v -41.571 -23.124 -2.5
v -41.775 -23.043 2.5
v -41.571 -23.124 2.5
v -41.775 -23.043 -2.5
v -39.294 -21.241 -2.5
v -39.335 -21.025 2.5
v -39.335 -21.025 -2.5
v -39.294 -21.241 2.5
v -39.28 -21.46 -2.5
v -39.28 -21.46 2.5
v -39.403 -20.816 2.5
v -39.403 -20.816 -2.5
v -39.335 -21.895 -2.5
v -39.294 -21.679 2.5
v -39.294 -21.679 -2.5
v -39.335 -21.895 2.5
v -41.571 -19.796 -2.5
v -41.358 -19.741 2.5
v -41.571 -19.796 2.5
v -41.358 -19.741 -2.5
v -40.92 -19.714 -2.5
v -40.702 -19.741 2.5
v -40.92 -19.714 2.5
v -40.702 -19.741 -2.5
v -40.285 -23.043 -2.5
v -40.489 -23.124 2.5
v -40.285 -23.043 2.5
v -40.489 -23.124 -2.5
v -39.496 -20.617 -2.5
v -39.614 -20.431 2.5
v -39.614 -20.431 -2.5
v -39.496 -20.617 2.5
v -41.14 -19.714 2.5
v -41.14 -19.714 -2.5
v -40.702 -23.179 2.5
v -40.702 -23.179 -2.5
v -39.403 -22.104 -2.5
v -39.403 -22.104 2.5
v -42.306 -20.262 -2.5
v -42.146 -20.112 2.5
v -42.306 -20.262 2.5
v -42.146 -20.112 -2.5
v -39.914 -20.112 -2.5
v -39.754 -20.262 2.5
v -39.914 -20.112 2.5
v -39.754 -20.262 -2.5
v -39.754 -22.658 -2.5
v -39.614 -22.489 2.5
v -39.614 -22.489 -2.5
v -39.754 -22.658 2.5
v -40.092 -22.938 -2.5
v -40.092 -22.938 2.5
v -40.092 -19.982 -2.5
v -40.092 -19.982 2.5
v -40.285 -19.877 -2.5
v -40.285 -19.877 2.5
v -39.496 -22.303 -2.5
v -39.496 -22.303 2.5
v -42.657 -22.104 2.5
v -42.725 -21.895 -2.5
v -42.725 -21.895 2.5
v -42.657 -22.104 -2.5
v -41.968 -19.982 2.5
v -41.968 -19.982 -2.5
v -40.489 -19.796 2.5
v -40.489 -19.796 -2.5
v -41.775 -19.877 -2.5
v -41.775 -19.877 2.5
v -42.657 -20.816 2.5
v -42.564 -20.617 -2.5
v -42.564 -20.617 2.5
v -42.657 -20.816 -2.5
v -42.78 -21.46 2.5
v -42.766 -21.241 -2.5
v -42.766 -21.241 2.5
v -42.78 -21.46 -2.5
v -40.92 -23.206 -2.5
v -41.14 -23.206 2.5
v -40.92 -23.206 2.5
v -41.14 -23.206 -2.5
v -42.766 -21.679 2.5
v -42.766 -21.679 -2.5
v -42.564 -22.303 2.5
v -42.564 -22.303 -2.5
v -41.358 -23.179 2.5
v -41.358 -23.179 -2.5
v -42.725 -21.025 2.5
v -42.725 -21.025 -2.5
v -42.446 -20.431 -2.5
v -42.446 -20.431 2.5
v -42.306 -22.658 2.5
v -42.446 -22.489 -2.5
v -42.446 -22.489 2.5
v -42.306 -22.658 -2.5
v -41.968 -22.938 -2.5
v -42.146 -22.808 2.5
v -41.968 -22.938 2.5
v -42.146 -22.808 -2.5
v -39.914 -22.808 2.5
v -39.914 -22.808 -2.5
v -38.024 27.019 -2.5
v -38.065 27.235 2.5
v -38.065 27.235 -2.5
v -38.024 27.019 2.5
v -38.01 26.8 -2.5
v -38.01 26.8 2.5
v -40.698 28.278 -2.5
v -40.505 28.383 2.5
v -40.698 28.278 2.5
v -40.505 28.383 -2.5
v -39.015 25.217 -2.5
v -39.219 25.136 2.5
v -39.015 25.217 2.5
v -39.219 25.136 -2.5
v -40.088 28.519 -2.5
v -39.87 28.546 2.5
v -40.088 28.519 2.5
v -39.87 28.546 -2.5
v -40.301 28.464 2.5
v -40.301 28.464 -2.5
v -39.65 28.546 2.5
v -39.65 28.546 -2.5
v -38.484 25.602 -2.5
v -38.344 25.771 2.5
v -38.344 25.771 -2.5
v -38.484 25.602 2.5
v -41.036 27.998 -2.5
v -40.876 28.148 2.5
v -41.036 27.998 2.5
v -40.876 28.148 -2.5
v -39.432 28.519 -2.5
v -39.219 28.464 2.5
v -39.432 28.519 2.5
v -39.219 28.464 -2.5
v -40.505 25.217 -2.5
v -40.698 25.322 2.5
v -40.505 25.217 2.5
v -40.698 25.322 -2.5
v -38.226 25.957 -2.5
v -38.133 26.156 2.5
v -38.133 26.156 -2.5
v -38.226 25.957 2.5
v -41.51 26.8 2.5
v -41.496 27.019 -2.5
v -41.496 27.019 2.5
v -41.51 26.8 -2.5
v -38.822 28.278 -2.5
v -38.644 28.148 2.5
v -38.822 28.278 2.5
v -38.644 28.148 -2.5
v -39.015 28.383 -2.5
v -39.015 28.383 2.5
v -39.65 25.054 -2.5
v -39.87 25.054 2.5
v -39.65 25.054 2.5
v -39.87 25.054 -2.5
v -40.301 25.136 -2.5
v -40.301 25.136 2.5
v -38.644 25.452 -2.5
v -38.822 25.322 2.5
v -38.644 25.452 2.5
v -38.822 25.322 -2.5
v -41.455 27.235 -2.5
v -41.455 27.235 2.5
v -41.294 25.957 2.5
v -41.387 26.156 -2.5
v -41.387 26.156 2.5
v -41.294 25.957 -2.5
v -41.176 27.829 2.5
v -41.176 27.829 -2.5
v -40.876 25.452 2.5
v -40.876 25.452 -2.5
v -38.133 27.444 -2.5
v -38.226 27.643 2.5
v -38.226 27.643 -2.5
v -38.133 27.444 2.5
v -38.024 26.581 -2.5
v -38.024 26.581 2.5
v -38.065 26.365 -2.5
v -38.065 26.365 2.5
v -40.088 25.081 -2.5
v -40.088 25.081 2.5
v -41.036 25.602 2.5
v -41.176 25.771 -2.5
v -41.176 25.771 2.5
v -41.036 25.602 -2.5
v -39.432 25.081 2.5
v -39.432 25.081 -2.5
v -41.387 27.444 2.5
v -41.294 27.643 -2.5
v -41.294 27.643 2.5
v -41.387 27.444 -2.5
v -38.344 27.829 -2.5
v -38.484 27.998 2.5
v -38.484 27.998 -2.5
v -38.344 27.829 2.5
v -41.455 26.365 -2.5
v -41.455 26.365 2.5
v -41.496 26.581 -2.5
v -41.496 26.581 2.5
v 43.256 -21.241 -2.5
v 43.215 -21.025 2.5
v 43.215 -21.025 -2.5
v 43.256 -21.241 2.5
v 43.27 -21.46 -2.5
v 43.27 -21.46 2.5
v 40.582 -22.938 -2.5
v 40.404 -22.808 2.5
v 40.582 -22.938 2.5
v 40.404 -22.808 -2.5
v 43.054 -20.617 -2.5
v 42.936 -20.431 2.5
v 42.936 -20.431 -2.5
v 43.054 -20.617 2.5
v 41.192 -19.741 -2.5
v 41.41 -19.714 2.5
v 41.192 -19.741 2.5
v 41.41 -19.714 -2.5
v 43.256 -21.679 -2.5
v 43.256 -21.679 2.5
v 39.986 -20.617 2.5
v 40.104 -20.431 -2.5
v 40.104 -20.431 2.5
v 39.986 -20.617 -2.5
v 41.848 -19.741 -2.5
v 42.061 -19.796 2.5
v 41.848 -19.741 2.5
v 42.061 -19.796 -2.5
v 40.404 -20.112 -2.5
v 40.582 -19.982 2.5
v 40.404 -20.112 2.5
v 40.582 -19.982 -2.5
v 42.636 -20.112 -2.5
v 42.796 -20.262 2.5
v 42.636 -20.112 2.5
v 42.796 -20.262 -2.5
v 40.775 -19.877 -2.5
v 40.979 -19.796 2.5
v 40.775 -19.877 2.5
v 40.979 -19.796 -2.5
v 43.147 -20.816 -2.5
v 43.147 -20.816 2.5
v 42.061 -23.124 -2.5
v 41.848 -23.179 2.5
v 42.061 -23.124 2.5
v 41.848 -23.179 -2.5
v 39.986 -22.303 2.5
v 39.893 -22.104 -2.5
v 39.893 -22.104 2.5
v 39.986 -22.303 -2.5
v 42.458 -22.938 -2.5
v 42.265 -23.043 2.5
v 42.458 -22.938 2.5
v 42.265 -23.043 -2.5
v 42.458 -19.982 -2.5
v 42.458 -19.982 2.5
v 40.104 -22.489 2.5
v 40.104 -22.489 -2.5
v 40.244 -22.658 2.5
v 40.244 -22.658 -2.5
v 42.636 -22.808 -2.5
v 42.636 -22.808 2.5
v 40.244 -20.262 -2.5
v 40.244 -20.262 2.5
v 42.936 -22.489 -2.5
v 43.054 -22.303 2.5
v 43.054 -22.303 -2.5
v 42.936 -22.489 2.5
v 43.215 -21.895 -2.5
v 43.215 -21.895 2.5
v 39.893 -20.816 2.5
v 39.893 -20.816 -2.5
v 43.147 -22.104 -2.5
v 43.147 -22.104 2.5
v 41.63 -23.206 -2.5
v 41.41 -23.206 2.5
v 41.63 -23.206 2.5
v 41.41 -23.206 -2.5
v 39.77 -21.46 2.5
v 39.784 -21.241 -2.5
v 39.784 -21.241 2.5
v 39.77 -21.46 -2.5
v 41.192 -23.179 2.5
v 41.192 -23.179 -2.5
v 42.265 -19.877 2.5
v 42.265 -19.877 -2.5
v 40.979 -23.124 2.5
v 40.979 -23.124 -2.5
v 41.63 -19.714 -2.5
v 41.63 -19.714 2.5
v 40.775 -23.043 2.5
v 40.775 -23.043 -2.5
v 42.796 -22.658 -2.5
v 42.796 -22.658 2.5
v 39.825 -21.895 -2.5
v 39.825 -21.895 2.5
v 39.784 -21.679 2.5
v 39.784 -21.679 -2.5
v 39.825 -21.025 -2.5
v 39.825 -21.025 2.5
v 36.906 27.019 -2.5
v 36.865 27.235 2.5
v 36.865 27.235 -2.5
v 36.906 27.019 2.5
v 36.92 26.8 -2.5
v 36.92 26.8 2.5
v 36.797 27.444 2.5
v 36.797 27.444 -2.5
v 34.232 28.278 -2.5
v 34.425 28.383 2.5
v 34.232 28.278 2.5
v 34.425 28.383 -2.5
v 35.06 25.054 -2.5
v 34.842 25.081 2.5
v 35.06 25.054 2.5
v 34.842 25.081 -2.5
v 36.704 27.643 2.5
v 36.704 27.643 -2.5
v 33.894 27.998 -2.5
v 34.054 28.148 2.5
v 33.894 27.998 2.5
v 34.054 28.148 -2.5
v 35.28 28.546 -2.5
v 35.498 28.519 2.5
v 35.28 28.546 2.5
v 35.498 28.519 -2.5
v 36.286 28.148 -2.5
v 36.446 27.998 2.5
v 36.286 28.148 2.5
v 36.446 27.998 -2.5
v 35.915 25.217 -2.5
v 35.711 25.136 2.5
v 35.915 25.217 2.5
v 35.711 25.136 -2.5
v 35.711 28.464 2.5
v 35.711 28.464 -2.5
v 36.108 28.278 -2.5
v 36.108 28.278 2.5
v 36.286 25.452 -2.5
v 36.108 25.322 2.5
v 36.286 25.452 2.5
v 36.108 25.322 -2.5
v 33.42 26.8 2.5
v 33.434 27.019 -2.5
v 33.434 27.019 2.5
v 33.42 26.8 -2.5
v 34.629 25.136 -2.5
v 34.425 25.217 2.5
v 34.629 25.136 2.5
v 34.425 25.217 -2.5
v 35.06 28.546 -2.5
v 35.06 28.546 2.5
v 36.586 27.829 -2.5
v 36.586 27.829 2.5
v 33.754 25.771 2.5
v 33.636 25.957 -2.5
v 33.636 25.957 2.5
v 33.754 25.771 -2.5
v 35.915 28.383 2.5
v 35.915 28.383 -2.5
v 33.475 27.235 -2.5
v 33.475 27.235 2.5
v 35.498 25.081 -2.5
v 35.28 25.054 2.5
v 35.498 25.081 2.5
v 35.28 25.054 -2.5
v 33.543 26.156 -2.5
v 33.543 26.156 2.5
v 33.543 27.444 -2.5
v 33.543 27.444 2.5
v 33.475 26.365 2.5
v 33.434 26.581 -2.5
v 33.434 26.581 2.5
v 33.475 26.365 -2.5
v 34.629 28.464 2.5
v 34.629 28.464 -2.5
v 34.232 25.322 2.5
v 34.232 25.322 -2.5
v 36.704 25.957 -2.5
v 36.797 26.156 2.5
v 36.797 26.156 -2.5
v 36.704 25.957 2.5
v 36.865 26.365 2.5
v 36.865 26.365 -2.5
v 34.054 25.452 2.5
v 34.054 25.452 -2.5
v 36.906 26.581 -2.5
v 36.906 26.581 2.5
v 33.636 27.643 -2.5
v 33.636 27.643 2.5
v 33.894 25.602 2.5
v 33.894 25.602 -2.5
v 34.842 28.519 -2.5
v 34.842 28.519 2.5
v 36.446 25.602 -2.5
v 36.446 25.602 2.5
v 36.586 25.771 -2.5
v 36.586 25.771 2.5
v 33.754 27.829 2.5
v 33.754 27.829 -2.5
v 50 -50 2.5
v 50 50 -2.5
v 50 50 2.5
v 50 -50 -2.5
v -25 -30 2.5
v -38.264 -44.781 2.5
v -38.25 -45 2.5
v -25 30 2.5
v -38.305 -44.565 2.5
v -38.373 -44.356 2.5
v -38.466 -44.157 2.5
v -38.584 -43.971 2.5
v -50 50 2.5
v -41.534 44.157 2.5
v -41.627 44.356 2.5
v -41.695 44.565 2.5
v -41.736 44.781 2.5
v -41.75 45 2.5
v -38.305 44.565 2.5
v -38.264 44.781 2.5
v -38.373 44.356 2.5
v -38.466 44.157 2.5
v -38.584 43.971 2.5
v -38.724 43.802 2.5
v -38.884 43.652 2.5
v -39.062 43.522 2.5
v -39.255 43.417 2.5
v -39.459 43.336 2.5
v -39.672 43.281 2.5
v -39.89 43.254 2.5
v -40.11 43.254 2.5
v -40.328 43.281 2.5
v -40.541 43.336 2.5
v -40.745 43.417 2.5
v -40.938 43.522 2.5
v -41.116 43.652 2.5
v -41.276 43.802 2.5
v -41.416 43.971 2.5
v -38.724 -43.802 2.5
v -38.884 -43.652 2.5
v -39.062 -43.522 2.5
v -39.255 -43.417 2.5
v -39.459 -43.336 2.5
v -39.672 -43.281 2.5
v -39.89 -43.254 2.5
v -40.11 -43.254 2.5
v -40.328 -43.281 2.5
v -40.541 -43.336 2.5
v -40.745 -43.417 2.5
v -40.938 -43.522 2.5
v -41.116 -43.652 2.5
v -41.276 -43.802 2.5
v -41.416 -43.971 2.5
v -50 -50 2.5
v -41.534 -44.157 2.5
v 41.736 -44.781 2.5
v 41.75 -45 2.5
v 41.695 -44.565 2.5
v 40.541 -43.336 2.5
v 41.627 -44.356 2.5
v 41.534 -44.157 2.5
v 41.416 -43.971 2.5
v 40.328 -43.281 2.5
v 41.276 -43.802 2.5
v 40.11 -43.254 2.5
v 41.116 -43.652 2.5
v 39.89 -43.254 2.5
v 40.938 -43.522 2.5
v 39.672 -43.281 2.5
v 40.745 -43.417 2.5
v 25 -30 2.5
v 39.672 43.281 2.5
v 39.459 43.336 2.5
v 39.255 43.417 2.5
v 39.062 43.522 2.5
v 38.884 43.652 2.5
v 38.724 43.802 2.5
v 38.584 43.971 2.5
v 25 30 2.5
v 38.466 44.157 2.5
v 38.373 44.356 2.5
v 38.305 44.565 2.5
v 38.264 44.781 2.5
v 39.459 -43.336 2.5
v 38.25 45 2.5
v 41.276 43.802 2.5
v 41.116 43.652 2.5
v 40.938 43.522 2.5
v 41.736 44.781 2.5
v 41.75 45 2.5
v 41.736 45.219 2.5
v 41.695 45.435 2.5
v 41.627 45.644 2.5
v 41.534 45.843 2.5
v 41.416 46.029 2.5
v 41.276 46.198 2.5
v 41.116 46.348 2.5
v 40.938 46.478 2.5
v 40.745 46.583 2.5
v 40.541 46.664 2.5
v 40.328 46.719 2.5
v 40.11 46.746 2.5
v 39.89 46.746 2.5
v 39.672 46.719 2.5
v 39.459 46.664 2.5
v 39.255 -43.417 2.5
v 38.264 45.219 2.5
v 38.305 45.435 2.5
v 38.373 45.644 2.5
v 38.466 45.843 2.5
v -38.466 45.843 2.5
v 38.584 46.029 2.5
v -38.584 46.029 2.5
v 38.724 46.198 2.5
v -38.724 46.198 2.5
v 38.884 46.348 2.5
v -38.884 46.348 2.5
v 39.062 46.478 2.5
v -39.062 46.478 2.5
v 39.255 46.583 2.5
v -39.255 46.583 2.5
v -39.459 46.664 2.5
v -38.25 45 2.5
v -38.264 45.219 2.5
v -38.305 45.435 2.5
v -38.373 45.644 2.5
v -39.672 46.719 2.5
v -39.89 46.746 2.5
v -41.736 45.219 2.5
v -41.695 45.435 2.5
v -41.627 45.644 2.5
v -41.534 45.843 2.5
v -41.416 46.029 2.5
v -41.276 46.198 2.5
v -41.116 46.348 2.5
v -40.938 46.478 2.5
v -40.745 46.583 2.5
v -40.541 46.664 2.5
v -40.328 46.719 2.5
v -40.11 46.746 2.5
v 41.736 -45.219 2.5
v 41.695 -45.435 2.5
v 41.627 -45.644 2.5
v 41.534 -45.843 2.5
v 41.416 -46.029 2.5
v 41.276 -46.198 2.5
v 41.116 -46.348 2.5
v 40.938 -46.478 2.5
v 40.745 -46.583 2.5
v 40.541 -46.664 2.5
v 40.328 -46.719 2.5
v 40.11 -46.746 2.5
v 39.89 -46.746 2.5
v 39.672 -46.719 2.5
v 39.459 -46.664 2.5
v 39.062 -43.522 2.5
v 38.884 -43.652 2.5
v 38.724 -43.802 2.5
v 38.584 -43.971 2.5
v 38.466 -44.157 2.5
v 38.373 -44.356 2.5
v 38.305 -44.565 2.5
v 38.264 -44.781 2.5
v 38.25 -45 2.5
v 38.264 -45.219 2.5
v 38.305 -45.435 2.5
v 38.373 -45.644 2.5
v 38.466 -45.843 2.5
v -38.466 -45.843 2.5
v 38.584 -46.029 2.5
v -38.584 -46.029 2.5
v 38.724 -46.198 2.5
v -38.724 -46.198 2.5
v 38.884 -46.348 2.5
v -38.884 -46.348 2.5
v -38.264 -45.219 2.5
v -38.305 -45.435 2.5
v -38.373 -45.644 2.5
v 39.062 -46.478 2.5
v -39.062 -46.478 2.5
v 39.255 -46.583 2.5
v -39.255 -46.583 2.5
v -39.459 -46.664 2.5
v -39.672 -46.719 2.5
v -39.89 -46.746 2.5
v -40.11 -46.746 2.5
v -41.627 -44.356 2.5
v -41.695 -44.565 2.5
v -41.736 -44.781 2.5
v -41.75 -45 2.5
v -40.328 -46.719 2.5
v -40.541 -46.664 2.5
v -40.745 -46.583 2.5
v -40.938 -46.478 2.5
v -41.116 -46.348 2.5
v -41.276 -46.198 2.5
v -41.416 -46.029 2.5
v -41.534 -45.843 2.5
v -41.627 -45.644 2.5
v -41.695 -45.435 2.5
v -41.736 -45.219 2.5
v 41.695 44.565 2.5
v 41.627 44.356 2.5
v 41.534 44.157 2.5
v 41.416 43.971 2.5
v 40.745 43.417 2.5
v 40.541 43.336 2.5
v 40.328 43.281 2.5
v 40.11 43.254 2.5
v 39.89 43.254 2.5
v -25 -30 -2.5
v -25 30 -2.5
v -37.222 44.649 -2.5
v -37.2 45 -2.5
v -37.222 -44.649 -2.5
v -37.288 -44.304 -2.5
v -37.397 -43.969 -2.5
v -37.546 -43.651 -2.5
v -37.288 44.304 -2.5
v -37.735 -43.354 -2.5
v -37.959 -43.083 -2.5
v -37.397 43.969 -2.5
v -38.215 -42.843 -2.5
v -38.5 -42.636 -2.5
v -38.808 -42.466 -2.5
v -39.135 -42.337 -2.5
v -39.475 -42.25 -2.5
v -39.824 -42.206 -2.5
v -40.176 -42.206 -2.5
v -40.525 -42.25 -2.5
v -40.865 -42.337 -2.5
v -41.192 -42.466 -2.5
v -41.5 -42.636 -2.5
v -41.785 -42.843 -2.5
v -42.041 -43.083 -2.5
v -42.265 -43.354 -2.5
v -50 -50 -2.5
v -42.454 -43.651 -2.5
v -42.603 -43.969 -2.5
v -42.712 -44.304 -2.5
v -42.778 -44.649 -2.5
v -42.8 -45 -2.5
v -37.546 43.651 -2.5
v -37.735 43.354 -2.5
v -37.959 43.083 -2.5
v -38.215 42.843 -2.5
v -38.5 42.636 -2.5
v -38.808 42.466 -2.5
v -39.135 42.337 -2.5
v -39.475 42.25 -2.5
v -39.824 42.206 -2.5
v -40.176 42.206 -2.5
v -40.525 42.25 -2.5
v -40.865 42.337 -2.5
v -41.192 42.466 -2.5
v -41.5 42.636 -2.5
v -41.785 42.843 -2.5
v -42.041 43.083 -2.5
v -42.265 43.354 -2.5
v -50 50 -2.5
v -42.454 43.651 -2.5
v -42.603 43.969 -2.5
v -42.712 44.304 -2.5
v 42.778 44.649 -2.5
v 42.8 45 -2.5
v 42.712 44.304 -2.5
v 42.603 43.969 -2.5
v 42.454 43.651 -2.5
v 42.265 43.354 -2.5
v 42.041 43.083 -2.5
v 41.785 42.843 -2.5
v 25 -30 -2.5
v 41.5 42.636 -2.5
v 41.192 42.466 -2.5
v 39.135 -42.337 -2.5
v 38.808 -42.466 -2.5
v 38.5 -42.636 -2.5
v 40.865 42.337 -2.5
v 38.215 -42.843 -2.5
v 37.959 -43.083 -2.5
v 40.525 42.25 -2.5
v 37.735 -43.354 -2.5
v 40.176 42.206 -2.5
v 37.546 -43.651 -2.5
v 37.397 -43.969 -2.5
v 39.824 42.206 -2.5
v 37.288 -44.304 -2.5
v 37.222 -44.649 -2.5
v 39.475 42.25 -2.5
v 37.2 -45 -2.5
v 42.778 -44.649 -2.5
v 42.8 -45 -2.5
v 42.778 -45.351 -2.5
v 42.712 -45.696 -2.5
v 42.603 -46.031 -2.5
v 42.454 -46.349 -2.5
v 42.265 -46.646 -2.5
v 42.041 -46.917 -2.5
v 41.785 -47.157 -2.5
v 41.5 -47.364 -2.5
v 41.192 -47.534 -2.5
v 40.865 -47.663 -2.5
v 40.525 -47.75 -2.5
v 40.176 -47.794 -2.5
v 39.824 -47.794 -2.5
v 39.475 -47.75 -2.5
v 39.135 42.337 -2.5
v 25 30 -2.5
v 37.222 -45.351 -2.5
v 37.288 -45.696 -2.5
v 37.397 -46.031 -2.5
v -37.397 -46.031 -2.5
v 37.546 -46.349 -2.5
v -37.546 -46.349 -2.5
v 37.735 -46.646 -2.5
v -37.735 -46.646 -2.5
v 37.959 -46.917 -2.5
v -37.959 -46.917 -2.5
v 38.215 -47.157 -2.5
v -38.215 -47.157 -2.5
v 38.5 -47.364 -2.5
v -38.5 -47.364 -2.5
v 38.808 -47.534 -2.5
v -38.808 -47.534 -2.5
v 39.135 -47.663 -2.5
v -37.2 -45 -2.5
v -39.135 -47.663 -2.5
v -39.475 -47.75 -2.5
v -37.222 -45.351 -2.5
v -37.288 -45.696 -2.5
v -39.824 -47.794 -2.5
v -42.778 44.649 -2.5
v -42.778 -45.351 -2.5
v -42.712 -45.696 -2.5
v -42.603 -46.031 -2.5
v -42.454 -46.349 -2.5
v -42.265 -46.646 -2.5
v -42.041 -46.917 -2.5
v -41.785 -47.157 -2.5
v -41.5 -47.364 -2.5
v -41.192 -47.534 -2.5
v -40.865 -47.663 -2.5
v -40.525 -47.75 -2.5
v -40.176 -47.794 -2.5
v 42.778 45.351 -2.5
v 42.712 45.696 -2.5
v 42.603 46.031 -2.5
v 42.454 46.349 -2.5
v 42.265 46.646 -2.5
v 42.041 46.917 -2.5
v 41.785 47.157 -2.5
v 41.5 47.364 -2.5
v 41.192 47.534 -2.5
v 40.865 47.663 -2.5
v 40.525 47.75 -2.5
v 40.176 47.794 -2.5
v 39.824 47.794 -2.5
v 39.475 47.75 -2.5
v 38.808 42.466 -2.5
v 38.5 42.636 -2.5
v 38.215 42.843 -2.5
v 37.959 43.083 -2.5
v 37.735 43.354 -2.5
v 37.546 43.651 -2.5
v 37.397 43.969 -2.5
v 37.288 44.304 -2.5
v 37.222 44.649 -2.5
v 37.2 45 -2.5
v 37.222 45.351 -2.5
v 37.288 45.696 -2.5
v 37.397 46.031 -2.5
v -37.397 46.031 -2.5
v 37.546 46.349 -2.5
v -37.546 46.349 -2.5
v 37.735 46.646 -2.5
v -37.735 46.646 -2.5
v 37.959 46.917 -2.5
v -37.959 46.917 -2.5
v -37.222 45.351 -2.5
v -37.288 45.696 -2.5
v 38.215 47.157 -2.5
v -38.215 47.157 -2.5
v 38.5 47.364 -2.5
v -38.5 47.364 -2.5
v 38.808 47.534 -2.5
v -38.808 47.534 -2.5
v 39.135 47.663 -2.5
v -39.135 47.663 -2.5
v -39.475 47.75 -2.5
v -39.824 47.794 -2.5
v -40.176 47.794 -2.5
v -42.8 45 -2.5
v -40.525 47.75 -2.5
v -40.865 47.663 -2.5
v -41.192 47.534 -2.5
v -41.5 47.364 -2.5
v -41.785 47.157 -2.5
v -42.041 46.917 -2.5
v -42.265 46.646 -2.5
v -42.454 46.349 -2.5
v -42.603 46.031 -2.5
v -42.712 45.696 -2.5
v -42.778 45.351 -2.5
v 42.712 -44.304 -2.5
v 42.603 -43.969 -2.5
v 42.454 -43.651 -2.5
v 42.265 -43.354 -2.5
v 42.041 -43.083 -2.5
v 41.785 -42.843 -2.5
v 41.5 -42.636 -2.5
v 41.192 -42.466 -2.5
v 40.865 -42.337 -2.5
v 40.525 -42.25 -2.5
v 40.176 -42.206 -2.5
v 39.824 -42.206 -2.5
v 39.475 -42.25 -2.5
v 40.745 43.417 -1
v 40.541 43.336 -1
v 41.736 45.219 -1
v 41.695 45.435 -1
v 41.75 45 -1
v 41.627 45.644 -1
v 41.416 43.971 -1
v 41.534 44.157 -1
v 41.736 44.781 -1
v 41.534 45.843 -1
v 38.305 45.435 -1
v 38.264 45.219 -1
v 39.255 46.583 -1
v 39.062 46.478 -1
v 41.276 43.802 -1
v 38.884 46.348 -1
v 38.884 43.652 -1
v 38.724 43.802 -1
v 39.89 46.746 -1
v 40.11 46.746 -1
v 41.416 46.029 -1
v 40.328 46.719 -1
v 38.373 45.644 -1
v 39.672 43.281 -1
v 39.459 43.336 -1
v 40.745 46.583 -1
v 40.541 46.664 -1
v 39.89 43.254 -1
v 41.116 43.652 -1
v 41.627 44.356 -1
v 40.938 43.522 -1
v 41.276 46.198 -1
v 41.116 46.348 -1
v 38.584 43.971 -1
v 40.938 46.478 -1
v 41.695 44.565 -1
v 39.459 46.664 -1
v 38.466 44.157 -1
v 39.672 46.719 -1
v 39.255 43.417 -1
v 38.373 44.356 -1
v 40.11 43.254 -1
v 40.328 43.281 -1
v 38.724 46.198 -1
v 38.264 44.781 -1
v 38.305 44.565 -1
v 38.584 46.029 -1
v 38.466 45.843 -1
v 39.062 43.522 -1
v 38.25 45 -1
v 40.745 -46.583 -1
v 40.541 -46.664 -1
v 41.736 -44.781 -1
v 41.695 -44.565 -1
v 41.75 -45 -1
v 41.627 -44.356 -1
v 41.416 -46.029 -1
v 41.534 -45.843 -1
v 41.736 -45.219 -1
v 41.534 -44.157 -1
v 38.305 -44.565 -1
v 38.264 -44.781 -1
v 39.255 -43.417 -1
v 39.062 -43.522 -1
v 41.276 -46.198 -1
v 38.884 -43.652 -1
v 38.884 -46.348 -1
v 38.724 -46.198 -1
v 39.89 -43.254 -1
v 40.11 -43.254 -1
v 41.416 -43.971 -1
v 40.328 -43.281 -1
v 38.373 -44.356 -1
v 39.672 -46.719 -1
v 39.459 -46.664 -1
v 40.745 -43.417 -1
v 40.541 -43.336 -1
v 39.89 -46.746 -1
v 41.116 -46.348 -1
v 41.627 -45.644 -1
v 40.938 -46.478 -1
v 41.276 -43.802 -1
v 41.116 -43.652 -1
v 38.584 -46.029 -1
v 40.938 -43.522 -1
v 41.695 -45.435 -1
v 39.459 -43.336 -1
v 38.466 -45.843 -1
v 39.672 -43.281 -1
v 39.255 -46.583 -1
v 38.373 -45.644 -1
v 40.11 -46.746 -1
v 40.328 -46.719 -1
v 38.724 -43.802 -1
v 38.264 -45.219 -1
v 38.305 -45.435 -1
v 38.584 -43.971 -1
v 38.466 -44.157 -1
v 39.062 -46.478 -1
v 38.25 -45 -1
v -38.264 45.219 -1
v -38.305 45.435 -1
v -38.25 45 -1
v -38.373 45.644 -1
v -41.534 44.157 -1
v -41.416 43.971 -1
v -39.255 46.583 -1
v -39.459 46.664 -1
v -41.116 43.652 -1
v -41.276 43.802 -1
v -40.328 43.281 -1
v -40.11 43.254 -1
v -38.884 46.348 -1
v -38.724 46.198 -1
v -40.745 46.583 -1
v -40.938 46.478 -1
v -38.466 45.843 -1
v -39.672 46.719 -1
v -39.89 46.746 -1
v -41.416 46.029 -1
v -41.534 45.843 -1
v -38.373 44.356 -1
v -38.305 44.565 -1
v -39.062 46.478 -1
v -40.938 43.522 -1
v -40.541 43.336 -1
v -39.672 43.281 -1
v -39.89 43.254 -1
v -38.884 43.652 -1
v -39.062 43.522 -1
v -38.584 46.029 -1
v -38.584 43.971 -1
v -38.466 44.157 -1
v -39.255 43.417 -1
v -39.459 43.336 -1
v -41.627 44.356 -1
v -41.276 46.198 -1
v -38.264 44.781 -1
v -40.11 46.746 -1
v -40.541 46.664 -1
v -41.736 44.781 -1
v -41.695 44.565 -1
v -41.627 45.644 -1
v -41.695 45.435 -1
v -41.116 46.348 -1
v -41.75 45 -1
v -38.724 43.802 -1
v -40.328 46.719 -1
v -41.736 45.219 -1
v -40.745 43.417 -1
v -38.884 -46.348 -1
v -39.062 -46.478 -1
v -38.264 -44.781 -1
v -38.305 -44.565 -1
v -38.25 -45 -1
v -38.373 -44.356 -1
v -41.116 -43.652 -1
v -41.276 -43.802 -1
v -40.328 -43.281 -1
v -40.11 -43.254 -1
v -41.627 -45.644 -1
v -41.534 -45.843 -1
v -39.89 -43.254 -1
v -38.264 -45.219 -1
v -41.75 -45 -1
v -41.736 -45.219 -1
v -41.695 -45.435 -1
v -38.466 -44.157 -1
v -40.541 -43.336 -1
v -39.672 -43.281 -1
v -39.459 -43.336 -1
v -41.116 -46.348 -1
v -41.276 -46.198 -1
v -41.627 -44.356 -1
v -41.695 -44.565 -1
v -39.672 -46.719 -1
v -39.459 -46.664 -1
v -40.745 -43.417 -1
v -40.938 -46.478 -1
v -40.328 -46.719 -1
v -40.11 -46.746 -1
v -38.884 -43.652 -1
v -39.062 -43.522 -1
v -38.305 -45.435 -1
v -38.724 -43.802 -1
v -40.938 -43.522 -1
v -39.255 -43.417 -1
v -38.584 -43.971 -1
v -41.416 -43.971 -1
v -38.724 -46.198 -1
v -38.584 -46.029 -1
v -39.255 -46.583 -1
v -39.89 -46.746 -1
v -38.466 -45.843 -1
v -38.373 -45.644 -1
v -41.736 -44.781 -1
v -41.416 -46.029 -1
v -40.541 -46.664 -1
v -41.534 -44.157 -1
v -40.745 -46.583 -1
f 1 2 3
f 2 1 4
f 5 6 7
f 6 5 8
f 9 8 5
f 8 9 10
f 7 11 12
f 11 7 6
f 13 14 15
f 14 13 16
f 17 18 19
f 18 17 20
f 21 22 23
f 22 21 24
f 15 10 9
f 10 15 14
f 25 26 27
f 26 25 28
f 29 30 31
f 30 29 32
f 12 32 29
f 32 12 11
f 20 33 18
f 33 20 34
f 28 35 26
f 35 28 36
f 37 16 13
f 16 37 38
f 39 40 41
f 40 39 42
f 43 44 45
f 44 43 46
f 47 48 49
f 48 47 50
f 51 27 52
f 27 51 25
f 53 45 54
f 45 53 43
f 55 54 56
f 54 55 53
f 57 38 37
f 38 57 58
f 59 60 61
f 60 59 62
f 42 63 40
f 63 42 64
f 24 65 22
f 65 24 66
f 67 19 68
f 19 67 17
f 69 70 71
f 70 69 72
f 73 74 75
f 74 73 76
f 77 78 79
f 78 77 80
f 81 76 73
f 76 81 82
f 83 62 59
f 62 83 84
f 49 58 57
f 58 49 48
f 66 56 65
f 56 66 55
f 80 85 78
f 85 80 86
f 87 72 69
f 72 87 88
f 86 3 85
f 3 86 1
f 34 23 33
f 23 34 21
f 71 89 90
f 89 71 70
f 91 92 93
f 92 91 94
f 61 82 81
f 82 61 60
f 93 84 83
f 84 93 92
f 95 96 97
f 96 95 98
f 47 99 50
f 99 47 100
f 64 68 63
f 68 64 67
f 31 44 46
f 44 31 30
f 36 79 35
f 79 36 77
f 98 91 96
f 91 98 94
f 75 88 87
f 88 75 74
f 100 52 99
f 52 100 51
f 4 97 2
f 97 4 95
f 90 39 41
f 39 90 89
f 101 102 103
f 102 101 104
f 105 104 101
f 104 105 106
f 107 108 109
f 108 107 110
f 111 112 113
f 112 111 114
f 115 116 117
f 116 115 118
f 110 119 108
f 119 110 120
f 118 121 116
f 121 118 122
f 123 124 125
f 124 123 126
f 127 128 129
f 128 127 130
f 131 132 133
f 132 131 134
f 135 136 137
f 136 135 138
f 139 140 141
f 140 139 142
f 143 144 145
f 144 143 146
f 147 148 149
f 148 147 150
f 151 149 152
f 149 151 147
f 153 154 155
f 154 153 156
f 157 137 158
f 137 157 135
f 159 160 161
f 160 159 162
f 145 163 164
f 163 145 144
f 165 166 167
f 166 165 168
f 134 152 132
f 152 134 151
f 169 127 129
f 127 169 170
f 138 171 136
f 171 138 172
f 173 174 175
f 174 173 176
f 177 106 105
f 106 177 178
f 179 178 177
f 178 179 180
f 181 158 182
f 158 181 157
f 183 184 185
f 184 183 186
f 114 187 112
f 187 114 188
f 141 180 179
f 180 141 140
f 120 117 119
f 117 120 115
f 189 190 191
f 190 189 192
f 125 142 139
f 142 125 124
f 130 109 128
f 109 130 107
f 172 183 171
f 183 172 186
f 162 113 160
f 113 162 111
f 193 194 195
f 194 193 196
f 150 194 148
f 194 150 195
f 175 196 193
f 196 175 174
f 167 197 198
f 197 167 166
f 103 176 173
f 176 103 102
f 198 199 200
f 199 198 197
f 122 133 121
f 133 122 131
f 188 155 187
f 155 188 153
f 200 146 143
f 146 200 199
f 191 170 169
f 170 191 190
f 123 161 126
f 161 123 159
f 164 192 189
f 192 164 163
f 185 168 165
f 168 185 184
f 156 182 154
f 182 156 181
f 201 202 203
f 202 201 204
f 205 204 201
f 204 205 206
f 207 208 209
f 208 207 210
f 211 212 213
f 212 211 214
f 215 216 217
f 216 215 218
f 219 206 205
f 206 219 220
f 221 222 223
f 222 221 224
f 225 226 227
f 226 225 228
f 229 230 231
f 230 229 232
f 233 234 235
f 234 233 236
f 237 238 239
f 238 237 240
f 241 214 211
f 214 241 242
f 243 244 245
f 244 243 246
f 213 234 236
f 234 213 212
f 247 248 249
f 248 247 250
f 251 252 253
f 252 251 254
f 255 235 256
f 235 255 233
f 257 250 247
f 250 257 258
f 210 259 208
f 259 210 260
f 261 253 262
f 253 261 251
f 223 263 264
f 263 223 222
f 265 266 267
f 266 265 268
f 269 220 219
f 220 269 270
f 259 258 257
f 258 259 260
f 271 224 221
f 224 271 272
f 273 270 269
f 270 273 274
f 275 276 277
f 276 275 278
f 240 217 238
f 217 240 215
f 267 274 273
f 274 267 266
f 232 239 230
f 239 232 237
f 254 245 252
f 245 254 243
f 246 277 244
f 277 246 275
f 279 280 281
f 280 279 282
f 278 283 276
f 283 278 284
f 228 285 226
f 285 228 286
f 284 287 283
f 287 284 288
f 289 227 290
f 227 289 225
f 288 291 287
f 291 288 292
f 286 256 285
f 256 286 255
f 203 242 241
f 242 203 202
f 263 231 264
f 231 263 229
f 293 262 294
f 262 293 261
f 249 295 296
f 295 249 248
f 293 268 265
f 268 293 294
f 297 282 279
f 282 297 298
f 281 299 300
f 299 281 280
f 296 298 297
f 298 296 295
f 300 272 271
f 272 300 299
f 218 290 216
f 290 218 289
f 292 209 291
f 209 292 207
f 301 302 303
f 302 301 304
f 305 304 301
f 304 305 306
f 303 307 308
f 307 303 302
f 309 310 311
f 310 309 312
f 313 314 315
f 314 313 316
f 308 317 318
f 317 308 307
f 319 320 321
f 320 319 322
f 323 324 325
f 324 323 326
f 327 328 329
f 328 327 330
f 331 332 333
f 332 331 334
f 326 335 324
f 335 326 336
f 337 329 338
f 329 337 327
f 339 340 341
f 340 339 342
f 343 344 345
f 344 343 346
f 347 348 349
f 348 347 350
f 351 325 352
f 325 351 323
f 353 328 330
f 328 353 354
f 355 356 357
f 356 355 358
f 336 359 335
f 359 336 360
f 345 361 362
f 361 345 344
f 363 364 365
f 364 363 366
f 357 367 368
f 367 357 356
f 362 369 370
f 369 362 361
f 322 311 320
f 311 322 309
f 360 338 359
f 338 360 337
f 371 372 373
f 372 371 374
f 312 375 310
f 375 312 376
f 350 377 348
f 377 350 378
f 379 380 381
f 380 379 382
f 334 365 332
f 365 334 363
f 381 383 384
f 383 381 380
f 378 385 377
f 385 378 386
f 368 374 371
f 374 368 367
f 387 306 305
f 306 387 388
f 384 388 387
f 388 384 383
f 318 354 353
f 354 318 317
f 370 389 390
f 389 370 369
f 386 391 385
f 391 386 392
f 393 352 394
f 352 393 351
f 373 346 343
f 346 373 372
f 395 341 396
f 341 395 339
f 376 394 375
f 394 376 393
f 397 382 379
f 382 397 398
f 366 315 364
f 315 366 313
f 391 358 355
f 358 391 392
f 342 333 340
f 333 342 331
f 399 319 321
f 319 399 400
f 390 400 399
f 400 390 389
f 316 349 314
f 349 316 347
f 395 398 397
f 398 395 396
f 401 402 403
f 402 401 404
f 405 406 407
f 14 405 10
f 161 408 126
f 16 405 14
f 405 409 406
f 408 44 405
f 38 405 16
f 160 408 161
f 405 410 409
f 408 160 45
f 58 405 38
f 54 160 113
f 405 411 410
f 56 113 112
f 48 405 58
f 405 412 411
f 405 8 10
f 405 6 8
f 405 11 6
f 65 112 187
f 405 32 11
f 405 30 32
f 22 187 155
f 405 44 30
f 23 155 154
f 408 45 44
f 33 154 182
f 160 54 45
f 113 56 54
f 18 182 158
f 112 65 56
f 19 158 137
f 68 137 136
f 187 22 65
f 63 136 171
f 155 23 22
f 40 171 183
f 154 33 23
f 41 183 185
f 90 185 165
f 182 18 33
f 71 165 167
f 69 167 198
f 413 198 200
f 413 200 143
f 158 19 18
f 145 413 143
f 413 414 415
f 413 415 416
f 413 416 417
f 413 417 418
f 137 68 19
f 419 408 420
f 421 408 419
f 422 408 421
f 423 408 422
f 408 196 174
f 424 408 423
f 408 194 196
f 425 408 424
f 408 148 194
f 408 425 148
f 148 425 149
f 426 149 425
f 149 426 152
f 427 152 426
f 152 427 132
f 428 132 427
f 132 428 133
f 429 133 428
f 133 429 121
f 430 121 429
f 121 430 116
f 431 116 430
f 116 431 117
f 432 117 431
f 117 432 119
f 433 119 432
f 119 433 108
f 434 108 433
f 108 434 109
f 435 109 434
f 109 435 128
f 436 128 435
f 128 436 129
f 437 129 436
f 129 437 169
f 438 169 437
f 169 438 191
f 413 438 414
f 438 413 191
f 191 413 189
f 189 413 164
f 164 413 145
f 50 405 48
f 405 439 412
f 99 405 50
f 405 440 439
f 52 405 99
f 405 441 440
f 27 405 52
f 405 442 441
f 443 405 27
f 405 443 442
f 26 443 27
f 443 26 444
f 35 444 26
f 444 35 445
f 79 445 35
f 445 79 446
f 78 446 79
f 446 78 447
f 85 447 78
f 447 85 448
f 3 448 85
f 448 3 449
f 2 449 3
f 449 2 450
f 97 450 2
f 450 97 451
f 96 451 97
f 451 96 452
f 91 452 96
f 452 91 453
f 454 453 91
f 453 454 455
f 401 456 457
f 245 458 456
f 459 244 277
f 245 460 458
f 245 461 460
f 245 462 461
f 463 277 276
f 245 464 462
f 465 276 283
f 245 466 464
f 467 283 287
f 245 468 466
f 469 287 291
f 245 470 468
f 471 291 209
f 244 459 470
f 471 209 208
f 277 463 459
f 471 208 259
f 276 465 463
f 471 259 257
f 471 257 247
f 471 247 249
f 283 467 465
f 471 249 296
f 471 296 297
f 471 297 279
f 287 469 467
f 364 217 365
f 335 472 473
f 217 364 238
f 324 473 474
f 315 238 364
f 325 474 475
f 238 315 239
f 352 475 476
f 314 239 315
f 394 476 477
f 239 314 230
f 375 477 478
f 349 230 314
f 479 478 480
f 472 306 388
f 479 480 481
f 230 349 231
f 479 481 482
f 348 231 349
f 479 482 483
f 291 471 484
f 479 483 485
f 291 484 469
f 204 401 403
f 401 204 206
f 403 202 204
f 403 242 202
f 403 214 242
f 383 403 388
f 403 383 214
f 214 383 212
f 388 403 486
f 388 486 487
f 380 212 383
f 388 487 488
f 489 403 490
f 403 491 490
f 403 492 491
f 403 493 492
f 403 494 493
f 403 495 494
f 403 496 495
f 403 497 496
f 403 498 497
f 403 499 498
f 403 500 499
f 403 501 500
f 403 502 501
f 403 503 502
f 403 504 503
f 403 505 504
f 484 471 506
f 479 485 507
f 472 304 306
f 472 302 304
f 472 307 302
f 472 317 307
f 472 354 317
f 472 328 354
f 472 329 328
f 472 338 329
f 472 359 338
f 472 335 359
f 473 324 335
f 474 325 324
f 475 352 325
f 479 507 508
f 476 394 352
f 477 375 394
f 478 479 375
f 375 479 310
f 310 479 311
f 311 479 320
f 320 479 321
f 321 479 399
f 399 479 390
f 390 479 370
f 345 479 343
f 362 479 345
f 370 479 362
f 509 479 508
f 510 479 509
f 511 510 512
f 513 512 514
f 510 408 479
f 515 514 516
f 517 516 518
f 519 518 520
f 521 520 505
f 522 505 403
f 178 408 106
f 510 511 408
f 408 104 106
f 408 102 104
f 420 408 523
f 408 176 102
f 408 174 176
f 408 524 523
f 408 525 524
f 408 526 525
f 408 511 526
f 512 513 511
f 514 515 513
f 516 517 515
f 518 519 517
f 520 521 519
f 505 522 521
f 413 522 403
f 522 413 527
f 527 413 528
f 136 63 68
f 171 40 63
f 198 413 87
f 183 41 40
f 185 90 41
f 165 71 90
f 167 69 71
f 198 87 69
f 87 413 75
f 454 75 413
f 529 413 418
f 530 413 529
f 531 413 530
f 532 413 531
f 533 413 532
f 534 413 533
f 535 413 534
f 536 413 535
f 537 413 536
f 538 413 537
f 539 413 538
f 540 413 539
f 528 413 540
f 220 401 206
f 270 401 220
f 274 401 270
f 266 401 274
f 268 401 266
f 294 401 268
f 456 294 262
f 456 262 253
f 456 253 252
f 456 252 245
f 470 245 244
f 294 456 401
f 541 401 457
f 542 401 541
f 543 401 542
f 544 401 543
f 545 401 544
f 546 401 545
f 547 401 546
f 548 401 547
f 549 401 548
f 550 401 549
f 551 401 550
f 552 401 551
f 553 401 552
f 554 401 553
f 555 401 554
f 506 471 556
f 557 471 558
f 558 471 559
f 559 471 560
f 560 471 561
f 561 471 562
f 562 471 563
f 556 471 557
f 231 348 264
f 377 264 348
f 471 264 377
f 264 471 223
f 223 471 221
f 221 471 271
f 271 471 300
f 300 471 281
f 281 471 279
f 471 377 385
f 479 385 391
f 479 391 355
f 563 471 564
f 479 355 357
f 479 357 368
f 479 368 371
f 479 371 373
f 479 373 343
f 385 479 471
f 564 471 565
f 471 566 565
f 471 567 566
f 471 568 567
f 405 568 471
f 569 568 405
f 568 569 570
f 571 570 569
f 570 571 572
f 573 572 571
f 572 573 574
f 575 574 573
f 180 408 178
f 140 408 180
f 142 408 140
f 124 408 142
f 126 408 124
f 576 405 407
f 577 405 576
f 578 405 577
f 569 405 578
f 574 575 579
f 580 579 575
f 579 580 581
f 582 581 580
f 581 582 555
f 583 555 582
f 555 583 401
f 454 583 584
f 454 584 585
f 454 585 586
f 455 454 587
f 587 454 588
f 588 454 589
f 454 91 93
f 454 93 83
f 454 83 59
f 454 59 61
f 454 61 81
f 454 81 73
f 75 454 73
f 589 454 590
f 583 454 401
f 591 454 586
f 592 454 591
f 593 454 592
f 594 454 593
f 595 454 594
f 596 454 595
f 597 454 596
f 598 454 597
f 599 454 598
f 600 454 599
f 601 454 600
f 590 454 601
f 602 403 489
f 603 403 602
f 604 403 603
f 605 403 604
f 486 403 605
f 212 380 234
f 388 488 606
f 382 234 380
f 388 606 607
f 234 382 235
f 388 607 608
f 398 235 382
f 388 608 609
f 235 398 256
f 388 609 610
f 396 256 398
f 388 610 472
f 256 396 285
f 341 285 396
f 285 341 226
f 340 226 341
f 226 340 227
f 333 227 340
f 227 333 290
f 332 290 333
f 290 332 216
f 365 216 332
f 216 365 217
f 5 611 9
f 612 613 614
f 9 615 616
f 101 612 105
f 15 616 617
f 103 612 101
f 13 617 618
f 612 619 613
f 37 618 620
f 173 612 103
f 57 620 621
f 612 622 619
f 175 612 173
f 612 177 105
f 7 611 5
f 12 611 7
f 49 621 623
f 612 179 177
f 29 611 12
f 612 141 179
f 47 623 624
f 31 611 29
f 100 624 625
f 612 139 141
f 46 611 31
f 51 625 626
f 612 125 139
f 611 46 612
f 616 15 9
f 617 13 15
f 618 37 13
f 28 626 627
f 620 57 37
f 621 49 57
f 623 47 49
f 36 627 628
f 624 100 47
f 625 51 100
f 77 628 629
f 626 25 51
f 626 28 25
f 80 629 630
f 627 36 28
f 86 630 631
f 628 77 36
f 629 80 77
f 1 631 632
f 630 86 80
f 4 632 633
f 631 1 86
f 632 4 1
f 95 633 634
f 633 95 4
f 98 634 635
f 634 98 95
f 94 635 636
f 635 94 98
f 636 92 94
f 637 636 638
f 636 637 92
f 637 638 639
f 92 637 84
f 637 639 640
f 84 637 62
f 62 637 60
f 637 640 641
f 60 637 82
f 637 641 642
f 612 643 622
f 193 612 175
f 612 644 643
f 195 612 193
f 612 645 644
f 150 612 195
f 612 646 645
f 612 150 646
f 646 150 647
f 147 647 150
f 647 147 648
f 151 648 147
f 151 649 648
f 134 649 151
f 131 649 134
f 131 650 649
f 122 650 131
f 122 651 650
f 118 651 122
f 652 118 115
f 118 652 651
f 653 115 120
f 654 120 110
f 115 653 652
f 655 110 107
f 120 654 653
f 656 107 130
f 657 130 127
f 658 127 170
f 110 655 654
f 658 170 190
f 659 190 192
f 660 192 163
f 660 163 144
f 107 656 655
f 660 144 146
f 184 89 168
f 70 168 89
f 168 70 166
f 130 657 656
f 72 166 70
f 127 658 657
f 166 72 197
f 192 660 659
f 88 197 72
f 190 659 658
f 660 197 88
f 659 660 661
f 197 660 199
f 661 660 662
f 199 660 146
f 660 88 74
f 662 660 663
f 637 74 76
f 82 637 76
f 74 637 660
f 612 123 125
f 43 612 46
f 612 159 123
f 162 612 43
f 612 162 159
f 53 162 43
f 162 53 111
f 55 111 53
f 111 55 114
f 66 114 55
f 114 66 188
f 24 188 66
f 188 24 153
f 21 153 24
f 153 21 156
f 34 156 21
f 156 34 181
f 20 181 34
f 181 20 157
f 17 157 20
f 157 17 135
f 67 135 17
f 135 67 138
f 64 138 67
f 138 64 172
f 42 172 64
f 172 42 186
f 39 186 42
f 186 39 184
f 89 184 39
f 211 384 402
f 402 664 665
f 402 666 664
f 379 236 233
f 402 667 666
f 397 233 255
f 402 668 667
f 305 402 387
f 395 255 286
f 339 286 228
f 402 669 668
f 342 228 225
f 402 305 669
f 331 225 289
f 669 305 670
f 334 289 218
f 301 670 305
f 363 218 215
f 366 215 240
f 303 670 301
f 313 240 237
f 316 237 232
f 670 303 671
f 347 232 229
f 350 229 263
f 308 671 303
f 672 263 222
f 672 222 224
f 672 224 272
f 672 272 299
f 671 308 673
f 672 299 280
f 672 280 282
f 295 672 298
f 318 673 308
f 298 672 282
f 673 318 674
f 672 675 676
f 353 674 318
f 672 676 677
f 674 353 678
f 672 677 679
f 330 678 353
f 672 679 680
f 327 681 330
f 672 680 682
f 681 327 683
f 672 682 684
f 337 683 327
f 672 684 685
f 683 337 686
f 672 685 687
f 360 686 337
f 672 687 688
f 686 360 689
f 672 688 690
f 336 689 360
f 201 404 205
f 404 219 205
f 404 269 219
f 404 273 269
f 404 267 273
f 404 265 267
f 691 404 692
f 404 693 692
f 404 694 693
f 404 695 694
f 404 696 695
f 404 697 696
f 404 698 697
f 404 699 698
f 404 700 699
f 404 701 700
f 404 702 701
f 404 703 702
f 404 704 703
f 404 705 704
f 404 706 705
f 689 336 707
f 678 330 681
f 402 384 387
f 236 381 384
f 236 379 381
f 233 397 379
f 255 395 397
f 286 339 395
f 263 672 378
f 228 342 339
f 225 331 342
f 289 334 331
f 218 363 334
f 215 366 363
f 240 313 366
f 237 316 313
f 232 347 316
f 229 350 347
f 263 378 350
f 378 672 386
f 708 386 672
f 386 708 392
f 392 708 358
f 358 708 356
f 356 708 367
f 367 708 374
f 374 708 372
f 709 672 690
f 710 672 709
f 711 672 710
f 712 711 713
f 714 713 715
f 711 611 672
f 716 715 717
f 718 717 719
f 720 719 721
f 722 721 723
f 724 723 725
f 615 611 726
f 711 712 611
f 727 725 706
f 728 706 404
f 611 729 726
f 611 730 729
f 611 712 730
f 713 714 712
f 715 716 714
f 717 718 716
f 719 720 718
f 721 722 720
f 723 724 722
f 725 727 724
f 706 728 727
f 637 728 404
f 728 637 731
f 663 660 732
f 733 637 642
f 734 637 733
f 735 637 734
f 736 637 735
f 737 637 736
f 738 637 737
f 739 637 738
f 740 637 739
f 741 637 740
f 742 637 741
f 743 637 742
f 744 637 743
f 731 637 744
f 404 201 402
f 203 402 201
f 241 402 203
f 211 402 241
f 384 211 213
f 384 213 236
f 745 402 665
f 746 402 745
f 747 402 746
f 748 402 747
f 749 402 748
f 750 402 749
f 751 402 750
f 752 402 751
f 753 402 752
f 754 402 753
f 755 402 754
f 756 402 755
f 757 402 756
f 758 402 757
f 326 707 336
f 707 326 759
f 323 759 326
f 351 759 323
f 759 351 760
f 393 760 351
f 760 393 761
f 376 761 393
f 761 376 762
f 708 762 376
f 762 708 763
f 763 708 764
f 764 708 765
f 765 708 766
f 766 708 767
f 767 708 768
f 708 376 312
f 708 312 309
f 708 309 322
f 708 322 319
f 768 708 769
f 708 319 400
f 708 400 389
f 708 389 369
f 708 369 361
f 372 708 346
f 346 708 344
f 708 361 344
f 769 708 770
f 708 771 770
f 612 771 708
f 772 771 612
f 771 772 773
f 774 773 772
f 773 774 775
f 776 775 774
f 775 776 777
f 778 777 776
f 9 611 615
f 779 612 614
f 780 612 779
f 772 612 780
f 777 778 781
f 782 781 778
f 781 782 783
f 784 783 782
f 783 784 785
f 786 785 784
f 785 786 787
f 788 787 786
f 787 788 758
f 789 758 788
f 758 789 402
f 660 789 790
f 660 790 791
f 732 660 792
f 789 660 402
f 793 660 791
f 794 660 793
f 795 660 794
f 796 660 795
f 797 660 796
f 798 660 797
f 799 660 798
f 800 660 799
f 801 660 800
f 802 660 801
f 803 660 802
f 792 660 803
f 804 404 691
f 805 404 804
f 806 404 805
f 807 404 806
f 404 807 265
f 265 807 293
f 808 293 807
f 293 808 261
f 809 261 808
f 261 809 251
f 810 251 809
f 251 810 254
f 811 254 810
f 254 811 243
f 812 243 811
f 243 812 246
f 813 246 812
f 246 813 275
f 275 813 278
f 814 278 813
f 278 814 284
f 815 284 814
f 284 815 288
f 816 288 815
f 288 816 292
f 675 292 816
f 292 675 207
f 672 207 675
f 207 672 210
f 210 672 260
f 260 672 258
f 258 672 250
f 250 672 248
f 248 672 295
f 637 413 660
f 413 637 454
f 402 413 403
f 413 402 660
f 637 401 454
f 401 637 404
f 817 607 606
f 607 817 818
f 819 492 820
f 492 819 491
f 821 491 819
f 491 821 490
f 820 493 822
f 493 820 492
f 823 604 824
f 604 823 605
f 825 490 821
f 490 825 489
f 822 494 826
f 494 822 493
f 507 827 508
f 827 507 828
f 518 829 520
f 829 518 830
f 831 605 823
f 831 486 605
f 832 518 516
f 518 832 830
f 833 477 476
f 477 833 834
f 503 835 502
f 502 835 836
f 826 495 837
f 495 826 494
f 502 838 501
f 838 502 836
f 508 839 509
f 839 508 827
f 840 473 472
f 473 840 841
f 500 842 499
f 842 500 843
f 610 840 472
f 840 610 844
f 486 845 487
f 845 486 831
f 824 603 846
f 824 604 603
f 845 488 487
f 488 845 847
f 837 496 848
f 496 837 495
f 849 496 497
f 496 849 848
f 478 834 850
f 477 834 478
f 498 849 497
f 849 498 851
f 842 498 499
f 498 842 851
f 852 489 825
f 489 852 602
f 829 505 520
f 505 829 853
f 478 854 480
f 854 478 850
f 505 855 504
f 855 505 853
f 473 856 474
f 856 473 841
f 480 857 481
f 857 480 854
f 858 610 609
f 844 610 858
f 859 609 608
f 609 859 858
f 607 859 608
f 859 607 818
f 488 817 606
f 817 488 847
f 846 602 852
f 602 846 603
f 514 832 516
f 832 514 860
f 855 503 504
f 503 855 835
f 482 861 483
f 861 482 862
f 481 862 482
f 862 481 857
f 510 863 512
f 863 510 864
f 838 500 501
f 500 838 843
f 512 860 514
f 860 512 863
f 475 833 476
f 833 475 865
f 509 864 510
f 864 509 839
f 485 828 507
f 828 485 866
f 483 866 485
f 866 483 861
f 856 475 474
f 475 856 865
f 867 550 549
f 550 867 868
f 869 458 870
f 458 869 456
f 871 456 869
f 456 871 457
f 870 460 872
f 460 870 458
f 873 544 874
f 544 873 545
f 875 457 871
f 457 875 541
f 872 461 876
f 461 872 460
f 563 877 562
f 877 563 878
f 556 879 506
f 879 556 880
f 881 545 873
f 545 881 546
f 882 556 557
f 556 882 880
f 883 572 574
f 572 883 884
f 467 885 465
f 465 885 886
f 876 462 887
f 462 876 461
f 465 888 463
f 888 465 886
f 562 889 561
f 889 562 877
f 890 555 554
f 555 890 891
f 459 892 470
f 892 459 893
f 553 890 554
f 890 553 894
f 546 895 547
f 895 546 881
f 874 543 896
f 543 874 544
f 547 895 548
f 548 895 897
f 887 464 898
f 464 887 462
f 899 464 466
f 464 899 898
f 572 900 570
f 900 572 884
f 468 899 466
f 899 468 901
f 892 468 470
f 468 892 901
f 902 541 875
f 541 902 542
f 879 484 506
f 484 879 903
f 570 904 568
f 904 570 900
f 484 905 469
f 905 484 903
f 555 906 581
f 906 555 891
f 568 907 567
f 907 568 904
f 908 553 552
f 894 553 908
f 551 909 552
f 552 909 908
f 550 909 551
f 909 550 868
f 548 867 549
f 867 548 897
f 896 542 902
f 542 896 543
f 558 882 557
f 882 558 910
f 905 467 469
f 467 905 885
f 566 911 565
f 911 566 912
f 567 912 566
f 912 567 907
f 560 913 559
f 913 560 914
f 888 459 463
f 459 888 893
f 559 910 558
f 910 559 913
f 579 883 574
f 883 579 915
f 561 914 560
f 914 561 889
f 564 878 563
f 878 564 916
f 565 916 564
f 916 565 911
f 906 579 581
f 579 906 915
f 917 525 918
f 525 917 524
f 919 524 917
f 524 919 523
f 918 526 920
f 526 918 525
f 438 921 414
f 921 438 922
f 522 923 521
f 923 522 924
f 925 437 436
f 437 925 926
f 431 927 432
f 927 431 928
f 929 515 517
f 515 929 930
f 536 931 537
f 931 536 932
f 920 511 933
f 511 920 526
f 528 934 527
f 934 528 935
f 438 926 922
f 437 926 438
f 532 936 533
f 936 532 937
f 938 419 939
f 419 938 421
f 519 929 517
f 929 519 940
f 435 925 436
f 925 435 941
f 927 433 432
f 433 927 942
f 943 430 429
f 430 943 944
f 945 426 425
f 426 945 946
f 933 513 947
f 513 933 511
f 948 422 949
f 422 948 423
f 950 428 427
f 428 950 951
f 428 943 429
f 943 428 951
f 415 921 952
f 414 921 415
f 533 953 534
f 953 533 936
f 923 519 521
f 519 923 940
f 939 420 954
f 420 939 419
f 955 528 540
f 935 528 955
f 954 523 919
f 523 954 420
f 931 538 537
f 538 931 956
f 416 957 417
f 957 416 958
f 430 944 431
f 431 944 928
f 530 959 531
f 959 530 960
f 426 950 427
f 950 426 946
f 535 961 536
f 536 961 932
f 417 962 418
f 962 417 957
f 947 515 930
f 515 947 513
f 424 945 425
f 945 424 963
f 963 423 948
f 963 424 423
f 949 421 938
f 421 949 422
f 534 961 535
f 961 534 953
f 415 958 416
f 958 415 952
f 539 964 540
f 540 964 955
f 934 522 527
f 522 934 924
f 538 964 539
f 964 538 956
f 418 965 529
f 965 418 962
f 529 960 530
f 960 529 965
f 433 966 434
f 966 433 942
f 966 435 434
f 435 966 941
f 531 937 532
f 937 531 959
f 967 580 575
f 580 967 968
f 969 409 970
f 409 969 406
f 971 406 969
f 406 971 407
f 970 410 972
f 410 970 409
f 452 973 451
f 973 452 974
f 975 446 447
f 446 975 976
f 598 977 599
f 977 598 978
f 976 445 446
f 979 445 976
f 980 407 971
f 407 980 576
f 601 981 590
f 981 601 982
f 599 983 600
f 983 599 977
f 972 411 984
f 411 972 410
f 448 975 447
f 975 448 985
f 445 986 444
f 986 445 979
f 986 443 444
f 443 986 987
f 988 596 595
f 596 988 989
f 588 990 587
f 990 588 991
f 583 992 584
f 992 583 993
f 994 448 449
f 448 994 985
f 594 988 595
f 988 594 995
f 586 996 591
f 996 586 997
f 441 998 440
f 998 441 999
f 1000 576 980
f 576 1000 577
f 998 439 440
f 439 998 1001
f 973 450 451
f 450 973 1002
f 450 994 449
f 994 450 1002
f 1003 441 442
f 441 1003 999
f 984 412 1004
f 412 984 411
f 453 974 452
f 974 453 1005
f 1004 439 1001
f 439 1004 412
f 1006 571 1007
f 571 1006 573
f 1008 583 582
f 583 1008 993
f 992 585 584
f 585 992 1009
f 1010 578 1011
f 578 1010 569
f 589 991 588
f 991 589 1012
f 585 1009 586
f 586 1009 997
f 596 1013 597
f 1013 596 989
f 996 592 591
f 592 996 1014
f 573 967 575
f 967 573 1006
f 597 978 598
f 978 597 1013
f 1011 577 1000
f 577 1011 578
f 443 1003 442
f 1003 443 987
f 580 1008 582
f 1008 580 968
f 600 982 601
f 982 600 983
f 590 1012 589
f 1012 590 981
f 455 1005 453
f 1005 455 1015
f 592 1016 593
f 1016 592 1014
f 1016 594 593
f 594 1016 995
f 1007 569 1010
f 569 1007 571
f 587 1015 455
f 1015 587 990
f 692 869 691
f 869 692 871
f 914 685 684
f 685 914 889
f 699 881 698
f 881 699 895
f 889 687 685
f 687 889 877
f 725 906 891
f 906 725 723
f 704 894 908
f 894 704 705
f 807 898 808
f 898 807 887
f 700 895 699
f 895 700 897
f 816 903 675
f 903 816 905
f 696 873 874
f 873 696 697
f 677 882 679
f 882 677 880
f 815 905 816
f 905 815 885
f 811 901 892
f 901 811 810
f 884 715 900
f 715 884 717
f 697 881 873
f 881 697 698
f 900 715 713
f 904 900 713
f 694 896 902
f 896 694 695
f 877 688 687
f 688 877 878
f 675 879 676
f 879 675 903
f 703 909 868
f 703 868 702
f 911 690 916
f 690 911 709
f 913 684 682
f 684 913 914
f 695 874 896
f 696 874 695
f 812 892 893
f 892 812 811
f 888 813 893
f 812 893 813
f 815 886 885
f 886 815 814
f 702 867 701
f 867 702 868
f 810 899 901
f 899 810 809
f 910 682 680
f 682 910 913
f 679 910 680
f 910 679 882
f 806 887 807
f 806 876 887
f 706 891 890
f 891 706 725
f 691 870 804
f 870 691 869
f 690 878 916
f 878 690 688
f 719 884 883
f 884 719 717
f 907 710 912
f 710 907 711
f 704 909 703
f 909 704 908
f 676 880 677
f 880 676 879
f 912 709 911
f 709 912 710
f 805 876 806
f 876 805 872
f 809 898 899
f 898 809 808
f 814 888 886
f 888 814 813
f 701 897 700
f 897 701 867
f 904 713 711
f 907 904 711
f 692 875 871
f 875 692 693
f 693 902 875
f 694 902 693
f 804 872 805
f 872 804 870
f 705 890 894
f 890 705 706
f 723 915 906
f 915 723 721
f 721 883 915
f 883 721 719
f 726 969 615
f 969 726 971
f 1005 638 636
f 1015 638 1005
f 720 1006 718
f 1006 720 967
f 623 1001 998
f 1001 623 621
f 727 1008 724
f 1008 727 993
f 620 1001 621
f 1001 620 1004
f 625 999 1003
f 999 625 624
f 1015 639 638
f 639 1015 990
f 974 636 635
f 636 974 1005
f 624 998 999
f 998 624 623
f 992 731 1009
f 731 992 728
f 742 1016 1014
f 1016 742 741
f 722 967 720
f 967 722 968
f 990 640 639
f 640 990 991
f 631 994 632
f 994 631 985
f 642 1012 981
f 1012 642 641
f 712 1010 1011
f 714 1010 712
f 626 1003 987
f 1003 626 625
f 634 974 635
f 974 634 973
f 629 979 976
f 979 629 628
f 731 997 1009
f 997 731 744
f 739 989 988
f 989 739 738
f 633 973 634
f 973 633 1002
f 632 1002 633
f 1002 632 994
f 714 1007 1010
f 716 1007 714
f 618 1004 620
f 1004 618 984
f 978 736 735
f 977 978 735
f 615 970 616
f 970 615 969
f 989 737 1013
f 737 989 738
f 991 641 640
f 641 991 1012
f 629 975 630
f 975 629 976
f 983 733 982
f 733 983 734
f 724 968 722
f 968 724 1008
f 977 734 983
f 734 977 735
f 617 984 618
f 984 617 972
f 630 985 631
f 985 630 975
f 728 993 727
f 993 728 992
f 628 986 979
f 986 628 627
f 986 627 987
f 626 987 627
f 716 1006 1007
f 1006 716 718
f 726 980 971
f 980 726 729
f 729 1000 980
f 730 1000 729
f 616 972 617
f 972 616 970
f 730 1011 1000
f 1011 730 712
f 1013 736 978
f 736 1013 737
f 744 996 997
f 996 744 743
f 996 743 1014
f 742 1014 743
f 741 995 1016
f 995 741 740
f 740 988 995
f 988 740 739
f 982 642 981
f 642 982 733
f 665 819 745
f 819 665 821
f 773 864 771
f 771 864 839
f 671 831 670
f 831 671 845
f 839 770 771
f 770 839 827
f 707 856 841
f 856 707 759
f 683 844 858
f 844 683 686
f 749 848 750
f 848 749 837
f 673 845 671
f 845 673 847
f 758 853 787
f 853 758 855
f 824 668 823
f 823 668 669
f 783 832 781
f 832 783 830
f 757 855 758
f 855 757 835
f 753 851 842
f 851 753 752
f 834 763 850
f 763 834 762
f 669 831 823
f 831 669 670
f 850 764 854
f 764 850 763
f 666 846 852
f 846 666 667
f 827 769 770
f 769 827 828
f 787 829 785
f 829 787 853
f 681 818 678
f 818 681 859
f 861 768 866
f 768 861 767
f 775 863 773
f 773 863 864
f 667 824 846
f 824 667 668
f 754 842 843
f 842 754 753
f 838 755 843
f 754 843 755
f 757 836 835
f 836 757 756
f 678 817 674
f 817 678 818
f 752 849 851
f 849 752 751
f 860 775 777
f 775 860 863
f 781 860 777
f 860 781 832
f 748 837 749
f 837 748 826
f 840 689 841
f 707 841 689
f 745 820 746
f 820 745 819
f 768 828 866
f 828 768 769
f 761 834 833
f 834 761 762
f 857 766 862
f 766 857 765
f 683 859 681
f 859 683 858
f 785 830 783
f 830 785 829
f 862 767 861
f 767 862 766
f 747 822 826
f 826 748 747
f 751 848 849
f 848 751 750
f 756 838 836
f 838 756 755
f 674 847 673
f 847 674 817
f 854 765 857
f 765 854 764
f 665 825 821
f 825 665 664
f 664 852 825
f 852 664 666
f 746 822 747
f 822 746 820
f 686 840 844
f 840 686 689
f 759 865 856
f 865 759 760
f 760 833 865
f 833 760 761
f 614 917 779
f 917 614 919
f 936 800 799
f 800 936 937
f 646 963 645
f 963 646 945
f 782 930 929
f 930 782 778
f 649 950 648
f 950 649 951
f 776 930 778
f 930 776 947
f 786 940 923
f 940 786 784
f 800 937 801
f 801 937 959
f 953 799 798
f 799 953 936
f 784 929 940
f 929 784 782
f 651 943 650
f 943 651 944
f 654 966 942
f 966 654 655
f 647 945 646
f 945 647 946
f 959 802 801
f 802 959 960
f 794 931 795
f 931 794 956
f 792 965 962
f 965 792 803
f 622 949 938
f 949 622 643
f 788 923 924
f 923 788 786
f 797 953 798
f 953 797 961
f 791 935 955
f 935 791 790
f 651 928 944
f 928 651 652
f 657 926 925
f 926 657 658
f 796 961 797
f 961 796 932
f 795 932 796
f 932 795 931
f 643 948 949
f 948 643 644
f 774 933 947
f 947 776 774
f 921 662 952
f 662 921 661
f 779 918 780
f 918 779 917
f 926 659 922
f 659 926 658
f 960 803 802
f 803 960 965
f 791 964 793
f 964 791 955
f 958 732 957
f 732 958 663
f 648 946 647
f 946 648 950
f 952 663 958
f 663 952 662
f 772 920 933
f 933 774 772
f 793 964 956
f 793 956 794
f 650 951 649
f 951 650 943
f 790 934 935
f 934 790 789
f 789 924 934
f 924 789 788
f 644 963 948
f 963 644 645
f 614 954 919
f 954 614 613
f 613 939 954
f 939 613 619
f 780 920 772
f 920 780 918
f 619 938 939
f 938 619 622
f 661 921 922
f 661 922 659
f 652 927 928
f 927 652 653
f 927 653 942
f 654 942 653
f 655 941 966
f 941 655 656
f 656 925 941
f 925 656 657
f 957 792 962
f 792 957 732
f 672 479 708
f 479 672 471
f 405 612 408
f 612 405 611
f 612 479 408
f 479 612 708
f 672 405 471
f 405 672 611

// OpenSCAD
$fn=50;

difference()
{
    cube([100,100,5],center=true);

    // Mounting Holes
    translate([ 40, 45,0]) cylinder(h=20,d=3.5,center=true);
    translate([ 40,-45,0]) cylinder(h=20,d=3.5,center=true);
    translate([-40, 45,0]) cylinder(h=20,d=3.5,center=true);
    translate([-40,-45,0]) cylinder(h=20,d=3.5,center=true);

    translate([ 40,-45,-1]) cylinder(h=5,d1=7,d2=0,center=true);
    translate([-40,-45,-1]) cylinder(h=5,d1=7,d2=0,center=true);
    translate([ 40, 45,-1]) cylinder(h=5,d1=7,d2=0,center=true);
    translate([-40, 45,-1]) cylinder(h=5,d1=7,d2=0,center=true);

    // Holes
//    cube([60,60,20],center=true);
//    translate([ 40,0,0]) cube([30,60,20],center=true);
//    translate([-40,0,0]) cube([30,60,20],center=true);

    // Arduino-Holes
    
    translate([-55,-24,0]) union() {
        translate([13.97, 2.54,0]) cylinder(h=20,d=3.5,center=true);           // Bottom Left
        translate([15.24,50.8, 0]) cylinder(h=20,d=3.5,center=true);           // Top Left
        translate([96.52, 2.54,0]) cylinder(h=20,d=3.5,center=true);           // Bottom Right
        translate([90.17,50.8 ,0]) cylinder(h=20,d=3.5,center=true);           // Top Right
    }
    cube([50,60,20],center=true);

}
